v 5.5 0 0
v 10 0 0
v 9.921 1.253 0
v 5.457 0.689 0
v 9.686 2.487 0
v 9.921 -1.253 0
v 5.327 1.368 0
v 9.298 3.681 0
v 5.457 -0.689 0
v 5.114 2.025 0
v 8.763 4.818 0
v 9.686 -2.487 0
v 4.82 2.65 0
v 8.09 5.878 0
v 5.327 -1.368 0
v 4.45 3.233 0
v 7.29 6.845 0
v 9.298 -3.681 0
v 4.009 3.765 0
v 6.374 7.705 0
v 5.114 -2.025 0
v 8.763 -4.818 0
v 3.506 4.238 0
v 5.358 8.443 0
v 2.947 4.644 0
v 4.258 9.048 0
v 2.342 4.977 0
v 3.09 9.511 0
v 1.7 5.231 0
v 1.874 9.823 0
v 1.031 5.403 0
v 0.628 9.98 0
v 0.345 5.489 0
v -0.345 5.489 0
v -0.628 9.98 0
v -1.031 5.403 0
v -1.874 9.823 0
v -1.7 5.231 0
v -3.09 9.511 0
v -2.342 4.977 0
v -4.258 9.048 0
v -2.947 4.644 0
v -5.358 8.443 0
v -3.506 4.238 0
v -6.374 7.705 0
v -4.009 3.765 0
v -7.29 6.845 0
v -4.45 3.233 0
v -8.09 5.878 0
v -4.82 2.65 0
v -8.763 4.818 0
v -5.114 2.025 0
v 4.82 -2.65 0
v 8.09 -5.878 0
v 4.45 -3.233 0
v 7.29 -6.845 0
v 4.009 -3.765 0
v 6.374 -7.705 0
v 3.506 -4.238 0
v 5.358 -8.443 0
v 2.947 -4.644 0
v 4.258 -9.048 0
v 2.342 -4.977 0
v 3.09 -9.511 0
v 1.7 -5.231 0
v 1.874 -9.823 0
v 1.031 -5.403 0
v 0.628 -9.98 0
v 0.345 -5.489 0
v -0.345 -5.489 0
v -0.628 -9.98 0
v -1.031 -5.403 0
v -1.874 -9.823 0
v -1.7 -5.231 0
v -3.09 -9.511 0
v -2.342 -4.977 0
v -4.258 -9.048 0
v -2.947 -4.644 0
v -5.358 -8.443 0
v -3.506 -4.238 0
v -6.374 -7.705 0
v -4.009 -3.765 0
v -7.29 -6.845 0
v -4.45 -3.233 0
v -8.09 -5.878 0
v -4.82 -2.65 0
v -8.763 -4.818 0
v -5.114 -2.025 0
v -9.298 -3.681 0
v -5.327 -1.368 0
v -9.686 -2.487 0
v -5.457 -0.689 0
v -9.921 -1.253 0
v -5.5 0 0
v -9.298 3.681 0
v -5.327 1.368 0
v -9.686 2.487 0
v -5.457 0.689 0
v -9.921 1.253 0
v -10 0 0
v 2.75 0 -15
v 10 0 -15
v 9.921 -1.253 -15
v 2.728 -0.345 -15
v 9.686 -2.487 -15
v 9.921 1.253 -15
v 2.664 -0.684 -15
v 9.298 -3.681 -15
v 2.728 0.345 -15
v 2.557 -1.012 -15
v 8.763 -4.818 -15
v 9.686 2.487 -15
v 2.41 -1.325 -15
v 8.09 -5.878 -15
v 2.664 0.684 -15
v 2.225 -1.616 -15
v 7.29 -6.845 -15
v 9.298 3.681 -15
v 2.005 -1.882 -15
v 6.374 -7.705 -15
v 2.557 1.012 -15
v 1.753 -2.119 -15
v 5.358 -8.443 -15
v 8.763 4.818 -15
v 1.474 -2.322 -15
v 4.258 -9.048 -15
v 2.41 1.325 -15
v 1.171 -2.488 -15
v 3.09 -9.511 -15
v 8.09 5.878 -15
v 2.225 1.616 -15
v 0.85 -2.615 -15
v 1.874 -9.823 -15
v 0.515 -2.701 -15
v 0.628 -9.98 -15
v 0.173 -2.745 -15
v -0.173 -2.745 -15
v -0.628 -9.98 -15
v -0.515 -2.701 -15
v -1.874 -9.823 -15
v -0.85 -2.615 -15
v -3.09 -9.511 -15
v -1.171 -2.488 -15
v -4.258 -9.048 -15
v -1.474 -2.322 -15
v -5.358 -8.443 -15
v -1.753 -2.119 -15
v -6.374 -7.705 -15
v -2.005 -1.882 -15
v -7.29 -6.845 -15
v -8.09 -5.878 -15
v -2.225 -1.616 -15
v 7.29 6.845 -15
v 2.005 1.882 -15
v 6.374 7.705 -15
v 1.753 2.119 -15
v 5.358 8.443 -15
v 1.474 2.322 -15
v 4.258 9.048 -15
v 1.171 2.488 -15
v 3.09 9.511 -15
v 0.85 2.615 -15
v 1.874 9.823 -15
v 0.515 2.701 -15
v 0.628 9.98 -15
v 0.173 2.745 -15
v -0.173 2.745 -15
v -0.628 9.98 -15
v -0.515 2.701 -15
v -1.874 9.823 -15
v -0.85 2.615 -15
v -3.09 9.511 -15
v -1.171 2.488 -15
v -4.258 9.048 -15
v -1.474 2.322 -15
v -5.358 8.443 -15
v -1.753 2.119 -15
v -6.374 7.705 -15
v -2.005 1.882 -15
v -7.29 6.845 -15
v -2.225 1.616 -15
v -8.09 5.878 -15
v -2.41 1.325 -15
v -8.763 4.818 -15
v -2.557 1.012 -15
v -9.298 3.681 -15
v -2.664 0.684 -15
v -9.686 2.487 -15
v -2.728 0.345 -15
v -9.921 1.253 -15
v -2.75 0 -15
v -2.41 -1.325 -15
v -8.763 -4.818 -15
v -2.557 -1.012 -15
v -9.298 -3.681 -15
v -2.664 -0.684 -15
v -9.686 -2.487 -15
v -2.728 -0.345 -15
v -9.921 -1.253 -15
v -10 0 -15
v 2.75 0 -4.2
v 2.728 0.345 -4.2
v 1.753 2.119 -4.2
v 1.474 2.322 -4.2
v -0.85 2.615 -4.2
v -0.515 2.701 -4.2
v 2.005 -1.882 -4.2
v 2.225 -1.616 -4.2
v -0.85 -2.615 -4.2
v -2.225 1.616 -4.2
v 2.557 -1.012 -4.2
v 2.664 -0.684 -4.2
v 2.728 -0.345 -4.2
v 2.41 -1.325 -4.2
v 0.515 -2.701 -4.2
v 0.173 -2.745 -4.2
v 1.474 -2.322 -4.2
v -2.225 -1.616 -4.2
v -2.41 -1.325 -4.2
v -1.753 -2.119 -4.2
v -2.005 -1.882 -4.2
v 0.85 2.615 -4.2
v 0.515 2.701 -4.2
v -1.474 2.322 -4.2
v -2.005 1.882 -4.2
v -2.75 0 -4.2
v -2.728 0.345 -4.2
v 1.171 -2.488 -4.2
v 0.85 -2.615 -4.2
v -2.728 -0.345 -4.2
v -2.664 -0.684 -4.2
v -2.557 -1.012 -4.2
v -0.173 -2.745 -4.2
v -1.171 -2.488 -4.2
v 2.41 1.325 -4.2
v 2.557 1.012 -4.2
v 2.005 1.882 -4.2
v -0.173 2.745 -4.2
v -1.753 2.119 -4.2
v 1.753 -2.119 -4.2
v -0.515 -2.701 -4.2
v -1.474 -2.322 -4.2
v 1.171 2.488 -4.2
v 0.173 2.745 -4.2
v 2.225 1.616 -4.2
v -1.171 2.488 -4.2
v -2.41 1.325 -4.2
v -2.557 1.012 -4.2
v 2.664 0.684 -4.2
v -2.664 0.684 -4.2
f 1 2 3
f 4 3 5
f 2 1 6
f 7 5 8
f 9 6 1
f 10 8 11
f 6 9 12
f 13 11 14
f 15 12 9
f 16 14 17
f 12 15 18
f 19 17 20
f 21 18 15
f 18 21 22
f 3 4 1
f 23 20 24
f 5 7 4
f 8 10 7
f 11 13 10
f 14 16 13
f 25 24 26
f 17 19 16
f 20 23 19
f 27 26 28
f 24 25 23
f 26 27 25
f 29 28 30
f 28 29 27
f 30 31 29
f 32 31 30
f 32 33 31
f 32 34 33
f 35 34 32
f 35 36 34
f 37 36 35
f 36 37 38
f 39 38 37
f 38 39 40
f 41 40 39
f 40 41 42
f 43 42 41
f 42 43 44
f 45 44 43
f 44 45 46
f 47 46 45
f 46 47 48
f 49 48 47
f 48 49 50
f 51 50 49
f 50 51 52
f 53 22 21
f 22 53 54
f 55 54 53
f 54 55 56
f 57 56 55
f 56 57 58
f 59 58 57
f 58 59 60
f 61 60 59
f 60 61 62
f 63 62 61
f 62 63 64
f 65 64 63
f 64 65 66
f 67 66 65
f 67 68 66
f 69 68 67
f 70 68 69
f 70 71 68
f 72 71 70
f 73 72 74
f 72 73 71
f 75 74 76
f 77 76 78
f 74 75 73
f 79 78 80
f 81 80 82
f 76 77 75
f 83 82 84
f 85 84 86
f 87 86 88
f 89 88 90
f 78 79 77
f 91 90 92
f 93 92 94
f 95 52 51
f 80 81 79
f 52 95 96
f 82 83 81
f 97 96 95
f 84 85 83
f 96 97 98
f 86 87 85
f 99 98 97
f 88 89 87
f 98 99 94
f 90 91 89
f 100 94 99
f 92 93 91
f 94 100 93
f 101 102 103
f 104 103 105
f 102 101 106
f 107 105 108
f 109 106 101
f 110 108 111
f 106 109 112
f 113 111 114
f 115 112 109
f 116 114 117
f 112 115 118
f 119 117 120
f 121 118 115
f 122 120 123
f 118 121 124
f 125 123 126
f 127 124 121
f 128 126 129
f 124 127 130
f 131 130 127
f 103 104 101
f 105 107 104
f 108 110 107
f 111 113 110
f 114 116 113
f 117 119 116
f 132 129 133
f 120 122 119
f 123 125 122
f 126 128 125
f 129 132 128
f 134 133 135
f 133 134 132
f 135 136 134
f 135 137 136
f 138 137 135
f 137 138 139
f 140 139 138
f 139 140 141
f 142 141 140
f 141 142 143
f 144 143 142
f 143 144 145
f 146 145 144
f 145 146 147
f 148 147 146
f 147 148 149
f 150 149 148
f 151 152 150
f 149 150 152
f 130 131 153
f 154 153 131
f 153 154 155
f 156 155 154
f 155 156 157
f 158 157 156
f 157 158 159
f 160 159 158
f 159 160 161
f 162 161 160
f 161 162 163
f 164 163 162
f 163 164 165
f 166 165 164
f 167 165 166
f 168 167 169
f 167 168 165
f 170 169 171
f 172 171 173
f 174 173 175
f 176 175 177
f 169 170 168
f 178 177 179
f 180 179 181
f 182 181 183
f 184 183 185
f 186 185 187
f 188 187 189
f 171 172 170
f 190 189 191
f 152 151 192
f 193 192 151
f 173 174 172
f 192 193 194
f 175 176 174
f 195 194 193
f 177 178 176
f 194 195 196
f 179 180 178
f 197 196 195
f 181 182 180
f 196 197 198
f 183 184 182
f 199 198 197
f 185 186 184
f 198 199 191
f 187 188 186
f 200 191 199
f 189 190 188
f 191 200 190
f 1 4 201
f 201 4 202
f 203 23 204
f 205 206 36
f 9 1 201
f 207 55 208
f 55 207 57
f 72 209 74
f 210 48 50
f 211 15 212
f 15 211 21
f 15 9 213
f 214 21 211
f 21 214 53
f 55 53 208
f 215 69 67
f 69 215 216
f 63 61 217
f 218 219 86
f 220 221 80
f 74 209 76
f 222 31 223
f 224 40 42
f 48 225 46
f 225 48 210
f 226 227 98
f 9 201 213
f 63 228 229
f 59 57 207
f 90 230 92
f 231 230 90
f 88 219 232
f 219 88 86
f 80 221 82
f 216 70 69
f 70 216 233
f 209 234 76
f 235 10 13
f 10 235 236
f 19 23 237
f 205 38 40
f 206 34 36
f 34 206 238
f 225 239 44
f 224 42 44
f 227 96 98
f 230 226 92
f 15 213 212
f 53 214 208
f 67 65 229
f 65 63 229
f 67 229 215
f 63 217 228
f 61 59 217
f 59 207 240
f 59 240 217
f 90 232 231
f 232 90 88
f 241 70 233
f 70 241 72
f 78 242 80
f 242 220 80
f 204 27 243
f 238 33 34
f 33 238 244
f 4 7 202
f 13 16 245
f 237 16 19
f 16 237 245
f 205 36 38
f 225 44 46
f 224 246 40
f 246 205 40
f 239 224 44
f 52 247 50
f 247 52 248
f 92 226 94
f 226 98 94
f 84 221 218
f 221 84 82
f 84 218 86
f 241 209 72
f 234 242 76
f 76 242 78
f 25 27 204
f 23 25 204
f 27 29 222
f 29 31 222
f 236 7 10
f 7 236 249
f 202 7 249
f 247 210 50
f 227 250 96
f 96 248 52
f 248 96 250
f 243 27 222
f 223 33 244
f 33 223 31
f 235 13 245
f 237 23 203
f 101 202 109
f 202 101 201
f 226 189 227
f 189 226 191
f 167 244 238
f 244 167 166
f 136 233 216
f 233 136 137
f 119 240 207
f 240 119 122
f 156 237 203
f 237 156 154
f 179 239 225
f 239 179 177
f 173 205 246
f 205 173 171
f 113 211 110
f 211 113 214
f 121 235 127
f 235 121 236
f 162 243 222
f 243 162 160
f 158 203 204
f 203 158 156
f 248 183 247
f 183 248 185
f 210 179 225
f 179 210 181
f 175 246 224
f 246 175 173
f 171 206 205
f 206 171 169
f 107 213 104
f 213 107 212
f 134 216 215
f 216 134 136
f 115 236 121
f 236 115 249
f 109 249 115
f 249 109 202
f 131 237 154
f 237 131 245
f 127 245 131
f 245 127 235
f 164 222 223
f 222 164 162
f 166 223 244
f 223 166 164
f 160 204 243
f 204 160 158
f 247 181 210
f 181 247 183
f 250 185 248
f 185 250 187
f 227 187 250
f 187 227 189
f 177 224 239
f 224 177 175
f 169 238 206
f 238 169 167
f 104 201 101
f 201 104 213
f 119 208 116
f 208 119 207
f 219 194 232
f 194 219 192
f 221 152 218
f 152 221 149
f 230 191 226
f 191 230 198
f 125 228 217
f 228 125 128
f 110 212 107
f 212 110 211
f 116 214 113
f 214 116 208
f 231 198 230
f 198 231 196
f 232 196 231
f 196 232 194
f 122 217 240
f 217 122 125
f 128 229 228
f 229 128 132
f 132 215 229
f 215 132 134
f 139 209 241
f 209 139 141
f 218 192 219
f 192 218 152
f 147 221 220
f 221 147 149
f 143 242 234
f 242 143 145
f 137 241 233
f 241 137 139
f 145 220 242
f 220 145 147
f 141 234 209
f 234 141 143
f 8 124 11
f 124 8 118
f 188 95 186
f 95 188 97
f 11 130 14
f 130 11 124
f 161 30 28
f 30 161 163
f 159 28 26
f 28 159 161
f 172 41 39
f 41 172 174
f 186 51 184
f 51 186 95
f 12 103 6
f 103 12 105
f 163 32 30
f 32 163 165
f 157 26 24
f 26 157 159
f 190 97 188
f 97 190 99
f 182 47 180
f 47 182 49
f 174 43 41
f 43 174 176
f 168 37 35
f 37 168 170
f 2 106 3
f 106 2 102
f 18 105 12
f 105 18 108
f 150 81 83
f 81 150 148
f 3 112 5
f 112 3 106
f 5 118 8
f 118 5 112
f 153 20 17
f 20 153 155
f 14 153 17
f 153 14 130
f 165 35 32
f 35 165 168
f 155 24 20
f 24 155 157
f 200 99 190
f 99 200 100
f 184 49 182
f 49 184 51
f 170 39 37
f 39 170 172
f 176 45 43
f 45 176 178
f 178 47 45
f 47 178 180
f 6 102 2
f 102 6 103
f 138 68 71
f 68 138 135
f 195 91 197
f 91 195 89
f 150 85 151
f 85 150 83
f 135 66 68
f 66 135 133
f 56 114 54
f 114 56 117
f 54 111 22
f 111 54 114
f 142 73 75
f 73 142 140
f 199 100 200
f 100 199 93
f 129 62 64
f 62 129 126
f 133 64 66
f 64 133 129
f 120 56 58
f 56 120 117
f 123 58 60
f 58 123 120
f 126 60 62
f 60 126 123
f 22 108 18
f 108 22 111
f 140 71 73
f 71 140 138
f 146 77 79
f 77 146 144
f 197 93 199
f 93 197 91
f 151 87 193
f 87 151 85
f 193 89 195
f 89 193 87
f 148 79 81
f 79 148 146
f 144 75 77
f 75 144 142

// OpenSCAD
$fn = 50;


difference() {
	union() {
		translate(v = [0, 0, -15.0000000000]) {
			cylinder(h = 15, r = 10.0000000000);
		}
		cylinder(h = 0, r = 19.0000000000);
	}
	union() {
		translate(v = [0, 0, 0]) {
			rotate(a = [0, 0, 0]) {
				difference() {
					union() {
						#translate(v = [0, 0, -15.0000000000]) {
							cylinder(h = 15, r = 2.2500000000);
						}
						#translate(v = [0, 0, -4.2000000000]) {
							cylinder(h = 4.2000000000, r = 10.0000000000, r1 = 2.7500000000, r2 = 5.5000000000);
						}
						#translate(v = [0, 0, -15.0000000000]) {
							cylinder(h = 15, r = 2.7500000000);
						}
						#translate(v = [0, 0, -15.0000000000]) {
							cylinder(h = 15, r = 2.2500000000);
						}
					}
					union();
				}
			}
		}
	}
}
